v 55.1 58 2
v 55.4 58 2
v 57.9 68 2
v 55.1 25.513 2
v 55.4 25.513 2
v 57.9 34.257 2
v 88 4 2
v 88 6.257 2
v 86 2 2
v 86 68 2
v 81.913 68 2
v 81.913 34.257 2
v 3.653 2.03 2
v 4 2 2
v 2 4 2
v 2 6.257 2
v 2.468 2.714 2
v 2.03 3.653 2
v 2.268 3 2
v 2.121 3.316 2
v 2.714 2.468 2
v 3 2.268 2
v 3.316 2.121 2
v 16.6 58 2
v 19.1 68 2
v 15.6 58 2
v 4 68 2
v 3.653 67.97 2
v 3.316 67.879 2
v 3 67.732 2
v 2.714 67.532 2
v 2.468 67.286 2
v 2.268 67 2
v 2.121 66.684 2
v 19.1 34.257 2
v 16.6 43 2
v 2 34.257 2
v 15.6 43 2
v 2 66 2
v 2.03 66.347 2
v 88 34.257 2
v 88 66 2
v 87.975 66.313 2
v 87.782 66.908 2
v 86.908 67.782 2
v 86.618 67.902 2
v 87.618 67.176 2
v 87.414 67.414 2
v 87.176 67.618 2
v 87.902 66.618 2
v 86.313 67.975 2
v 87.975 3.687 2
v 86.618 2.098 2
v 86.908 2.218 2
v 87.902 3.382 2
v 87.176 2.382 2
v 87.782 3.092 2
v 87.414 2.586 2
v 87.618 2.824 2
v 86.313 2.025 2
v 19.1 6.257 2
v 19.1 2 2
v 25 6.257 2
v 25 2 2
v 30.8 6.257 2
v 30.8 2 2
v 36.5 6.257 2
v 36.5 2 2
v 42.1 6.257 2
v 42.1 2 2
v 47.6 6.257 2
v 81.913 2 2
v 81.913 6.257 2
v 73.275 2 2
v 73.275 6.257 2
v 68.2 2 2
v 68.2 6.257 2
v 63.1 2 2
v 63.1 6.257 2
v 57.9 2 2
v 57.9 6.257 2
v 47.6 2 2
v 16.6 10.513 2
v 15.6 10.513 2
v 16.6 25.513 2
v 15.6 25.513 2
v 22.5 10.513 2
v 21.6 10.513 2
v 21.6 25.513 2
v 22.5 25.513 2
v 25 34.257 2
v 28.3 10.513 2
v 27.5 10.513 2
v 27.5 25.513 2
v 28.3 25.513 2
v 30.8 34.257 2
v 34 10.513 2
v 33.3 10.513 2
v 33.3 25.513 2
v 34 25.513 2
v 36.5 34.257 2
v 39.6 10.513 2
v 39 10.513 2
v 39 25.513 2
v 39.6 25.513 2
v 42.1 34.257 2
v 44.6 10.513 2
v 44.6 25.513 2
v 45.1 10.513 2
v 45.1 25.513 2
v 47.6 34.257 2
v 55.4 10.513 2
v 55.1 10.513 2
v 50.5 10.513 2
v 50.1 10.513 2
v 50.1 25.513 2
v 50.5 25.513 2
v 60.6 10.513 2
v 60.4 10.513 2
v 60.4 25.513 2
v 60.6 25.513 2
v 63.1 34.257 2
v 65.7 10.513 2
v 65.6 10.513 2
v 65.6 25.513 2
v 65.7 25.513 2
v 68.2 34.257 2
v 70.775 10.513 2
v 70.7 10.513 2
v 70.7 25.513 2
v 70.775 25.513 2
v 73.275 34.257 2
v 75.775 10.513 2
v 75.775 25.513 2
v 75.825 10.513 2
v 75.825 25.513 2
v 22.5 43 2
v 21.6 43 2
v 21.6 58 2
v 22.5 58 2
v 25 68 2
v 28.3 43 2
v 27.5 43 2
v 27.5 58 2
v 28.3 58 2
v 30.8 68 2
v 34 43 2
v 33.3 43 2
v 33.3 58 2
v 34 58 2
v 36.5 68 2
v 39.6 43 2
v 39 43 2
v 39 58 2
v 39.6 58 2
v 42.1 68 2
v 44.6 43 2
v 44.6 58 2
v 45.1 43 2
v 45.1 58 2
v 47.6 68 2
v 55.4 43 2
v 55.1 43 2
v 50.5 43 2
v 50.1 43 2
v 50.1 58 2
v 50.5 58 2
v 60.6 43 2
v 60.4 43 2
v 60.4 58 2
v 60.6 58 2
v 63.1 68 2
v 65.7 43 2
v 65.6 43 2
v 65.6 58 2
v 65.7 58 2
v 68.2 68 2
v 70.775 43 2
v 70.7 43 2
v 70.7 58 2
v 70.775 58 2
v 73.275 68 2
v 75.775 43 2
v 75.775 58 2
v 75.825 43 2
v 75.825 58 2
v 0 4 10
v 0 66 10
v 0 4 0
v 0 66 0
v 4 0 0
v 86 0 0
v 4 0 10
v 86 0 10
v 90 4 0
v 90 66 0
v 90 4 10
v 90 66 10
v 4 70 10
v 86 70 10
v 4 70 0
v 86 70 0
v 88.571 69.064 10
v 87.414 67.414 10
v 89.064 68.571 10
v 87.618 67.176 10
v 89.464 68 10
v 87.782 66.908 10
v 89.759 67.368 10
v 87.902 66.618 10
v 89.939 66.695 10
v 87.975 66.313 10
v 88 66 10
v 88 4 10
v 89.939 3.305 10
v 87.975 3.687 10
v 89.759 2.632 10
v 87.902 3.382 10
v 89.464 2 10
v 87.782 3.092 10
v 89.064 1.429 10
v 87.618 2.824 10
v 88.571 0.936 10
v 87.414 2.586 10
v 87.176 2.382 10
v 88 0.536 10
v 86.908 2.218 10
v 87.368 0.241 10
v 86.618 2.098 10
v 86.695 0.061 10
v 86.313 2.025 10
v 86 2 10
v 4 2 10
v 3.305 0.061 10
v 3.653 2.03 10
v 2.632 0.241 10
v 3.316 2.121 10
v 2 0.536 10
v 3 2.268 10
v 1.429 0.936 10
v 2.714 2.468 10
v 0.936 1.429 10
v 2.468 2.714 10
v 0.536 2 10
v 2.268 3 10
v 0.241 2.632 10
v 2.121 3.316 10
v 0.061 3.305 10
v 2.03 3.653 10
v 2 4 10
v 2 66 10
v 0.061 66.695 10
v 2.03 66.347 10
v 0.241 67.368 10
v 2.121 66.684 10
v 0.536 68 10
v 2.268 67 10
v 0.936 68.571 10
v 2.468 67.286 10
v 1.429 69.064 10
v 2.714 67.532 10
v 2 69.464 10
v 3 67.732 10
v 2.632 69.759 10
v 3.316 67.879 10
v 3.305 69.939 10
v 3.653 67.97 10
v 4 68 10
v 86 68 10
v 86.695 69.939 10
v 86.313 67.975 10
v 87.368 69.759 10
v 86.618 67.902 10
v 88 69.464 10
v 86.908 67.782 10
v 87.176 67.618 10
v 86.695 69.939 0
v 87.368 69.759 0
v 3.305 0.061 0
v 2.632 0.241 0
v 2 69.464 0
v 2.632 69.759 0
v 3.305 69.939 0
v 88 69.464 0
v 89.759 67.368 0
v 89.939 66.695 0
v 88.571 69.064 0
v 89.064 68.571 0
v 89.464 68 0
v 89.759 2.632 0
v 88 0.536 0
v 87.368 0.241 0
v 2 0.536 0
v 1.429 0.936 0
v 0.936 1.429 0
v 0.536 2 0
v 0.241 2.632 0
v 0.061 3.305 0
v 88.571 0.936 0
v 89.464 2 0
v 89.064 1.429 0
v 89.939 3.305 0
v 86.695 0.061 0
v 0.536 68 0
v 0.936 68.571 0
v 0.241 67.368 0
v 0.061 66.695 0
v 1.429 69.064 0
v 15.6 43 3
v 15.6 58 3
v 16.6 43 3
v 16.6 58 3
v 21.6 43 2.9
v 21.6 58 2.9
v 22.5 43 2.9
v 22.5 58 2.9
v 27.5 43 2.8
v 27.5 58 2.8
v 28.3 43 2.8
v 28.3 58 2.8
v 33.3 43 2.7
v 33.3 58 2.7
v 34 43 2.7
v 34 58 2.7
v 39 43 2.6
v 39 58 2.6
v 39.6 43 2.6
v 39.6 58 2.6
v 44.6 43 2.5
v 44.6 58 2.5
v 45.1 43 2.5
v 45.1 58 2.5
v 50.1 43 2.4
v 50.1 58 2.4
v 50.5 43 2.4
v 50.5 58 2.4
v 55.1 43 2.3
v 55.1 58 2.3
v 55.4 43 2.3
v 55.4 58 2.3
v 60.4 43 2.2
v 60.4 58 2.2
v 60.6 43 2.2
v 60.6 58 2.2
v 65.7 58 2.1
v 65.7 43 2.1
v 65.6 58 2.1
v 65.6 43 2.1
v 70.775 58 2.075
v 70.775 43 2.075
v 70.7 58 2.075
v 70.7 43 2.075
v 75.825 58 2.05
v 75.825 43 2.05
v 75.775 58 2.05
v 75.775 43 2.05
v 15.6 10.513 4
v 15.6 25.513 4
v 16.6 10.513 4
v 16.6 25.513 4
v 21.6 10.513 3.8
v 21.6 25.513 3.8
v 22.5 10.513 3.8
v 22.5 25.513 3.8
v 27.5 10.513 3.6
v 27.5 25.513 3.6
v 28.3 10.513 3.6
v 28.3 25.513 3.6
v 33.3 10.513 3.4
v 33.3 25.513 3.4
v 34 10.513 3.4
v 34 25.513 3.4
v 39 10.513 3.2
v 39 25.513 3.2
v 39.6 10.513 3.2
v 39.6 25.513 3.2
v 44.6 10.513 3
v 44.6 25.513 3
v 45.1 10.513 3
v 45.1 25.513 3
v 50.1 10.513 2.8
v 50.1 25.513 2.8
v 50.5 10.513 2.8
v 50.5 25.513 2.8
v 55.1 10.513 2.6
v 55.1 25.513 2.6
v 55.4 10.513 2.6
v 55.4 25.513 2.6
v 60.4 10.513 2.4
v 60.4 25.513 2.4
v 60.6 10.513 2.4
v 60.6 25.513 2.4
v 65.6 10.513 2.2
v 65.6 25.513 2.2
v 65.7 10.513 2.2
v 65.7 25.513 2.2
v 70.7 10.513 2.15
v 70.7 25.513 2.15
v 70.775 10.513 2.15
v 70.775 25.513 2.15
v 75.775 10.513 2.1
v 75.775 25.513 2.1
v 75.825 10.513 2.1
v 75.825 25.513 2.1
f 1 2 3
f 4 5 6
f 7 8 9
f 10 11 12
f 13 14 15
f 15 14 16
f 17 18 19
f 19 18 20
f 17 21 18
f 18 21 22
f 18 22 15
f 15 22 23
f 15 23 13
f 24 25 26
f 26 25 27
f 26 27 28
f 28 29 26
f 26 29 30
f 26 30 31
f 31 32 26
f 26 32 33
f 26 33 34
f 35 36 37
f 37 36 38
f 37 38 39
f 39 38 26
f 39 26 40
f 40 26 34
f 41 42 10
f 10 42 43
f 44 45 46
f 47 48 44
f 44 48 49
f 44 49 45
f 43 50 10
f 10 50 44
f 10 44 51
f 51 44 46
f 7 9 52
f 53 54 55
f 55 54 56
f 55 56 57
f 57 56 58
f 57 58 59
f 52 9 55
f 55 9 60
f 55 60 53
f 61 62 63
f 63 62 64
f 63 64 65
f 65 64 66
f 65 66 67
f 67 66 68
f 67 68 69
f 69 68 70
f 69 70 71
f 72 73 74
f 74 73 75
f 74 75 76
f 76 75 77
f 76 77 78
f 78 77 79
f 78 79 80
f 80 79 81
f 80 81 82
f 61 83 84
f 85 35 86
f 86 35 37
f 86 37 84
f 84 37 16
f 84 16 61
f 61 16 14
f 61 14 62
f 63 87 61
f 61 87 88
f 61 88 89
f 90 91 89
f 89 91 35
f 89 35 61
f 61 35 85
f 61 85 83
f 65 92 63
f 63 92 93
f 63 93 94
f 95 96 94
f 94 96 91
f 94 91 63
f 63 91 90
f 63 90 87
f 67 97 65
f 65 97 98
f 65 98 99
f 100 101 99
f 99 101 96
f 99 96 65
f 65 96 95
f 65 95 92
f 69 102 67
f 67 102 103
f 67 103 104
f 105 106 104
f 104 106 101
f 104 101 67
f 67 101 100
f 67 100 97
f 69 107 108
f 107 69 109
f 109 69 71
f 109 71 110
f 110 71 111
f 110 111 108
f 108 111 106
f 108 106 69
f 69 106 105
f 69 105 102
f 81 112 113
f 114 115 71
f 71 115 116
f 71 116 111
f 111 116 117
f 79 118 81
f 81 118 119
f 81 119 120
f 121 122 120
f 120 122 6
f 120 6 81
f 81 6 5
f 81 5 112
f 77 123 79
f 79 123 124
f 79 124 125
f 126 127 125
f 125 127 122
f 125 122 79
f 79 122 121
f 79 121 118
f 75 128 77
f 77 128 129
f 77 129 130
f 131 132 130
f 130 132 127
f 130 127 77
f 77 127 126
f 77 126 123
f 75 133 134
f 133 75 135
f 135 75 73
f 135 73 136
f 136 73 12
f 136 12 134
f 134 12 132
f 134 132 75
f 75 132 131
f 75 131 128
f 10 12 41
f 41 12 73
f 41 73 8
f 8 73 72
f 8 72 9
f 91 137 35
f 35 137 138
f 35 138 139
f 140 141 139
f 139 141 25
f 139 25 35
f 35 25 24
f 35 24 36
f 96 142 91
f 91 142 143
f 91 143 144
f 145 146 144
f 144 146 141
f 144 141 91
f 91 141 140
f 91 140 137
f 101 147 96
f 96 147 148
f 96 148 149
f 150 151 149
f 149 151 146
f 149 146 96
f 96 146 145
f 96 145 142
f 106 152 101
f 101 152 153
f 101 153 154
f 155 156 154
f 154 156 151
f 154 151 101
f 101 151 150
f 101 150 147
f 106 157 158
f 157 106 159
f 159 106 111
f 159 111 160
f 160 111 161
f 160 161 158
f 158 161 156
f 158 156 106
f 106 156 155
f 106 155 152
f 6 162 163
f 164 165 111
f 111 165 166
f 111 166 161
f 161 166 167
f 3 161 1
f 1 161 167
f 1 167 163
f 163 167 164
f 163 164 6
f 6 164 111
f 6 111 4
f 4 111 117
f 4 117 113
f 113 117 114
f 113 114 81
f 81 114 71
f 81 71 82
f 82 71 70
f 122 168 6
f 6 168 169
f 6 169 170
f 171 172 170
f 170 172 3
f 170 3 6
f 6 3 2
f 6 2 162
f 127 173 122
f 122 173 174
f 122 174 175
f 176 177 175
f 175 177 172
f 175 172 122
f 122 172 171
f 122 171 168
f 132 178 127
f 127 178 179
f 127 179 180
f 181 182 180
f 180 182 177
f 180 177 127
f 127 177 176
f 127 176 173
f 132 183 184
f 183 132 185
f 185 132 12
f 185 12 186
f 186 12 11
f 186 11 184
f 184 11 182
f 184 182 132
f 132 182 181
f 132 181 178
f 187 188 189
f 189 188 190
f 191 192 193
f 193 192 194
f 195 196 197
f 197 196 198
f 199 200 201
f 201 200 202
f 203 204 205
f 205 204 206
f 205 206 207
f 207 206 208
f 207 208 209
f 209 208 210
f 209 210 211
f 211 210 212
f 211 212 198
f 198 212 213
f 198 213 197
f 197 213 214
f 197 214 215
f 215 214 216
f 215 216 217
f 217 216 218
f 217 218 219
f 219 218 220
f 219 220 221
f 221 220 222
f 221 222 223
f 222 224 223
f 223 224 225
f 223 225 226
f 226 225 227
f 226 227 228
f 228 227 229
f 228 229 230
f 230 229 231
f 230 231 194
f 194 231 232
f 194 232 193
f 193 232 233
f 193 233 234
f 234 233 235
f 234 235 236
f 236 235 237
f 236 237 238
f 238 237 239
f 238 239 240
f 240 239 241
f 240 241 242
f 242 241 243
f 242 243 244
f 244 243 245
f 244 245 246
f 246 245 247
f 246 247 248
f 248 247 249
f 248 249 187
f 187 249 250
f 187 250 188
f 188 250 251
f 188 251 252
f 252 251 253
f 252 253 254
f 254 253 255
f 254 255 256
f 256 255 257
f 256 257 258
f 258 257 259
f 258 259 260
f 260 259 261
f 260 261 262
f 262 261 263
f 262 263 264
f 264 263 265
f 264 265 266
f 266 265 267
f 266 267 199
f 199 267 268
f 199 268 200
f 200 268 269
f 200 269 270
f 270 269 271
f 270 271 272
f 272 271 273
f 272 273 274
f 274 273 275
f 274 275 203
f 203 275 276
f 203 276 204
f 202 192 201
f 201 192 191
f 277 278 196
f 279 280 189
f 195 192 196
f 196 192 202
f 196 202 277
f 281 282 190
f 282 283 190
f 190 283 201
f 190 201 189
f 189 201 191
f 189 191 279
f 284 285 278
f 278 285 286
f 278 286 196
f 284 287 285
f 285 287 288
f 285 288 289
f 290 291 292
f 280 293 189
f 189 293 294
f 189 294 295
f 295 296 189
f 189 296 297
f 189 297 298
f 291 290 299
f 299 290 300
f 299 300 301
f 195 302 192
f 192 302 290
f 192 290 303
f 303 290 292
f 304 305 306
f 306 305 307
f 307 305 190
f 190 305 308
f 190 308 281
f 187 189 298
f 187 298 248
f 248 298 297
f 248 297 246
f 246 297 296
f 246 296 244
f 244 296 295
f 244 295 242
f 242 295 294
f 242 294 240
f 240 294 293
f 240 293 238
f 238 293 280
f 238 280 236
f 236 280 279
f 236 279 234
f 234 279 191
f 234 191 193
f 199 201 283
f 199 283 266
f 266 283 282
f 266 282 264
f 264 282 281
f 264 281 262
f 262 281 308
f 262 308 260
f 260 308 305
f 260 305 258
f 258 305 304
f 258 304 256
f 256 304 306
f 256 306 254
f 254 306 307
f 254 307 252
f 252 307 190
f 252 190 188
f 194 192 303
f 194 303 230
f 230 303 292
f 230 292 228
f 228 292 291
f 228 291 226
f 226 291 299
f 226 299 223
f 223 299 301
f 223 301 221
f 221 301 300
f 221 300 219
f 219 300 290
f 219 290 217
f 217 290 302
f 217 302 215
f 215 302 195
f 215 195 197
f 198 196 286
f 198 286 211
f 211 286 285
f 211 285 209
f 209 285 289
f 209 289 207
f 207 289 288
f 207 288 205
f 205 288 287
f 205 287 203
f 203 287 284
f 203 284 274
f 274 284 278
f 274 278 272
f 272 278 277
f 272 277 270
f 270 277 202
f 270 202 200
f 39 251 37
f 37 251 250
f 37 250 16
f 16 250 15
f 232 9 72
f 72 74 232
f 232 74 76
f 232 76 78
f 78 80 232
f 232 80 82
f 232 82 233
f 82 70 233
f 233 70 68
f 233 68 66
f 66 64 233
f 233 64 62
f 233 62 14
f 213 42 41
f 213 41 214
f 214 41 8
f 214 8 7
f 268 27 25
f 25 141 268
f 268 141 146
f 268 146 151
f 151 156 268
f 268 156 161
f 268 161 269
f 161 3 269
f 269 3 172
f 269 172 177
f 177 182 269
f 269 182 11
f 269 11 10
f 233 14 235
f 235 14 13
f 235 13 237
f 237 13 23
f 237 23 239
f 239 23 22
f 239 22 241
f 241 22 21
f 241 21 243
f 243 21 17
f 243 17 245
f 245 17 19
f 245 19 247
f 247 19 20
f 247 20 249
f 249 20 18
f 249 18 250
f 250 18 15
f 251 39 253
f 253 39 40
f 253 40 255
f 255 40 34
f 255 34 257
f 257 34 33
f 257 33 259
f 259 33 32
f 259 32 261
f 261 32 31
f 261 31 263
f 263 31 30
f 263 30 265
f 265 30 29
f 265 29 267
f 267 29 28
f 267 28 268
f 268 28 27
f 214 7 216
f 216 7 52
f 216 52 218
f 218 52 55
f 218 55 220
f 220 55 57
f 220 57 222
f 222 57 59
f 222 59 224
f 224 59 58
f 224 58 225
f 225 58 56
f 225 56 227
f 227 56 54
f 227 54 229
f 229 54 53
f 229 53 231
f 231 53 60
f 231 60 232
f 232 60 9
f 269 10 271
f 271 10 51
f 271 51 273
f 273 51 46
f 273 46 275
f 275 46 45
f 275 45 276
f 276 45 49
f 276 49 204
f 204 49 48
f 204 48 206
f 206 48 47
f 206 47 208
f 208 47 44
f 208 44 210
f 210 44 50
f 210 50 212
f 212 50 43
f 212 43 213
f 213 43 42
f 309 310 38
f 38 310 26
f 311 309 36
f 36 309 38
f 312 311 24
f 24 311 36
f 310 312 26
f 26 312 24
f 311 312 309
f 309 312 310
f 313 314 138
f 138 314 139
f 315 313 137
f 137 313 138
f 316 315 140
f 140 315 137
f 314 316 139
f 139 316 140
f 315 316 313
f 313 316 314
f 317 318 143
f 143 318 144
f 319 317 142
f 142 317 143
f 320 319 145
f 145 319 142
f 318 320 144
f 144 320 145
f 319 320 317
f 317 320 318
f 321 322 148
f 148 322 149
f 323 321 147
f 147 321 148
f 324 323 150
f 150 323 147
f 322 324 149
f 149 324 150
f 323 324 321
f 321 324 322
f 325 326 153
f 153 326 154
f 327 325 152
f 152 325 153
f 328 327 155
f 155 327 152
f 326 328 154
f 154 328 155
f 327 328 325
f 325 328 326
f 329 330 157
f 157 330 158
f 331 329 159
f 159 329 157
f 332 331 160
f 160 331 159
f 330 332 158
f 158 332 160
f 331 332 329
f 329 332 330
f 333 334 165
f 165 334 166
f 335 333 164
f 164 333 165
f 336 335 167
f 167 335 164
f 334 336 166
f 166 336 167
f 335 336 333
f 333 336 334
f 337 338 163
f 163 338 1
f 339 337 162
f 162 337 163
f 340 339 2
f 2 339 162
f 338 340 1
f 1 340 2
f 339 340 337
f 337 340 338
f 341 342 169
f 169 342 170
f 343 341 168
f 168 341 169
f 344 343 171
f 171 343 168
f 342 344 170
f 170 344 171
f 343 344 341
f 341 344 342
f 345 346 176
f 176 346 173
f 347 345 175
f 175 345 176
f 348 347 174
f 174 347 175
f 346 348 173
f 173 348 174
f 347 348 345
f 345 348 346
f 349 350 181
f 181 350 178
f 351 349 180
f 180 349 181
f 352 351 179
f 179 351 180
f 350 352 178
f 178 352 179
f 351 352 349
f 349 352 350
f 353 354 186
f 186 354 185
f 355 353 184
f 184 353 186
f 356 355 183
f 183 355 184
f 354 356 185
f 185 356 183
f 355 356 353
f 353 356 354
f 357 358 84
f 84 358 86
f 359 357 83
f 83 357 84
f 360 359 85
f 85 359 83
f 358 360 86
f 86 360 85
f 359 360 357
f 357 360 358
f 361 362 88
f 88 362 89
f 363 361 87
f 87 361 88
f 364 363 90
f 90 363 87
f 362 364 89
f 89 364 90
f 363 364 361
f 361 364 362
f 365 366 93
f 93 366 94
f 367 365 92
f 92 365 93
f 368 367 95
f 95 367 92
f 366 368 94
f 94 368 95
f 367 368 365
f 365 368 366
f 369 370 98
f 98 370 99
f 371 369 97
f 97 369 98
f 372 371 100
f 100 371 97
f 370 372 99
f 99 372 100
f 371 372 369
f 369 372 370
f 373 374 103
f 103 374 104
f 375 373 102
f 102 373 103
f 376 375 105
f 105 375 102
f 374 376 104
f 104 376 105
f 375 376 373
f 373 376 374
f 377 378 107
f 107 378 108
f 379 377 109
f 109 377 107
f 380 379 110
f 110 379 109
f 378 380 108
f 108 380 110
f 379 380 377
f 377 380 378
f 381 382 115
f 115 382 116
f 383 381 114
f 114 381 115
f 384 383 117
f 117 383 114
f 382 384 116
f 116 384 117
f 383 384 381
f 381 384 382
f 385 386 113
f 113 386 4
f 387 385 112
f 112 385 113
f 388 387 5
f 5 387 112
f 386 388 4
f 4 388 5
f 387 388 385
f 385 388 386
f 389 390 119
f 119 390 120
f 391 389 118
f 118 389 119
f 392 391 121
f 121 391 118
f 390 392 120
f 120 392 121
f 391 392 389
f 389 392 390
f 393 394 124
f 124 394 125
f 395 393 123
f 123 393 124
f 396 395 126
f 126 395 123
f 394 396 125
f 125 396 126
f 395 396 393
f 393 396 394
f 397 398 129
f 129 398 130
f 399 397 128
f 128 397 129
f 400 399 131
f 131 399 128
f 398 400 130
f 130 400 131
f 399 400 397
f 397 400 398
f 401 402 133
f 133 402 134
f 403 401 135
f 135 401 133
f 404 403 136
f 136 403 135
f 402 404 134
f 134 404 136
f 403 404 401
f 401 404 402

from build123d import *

# Parameters (mm, degrees)
SKETCH1_W            = 90
SKETCH1_H            = 70
BOSS_EXTRUDE1_DEPTH  = 10
FILLET1_R            = 4
SHELL1_T             = -2
SKETCH2_W            = 1
SKETCH2_H            = 15
BOSS_EXTRUDE2_DEPTH  = 1
SKETCH3_W            = 0.9
SKETCH3_H            = 15
BOSS_EXTRUDE3_DEPTH  = 0.9
SKETCH4_W            = 0.8
SKETCH4_H            = 15
BOSS_EXTRUDE4_DEPTH  = 0.8
SKETCH5_W            = 0.7
SKETCH5_H            = 15
BOSS_EXTRUDE5_DEPTH  = 0.7
SKETCH6_W            = 0.6
SKETCH6_H            = 15
BOSS_EXTRUDE6_DEPTH  = 0.6
SKETCH7_W            = 0.5
SKETCH7_H            = 15
BOSS_EXTRUDE7_DEPTH  = 0.5
SKETCH8_W            = 0.4
SKETCH8_H            = 15
BOSS_EXTRUDE8_DEPTH  = 0.4
SKETCH9_W            = 0.3
SKETCH9_H            = 15
BOSS_EXTRUDE9_DEPTH  = 0.3
SKETCH10_W           = 0.2
SKETCH10_H           = 15
BOSS_EXTRUDE10_DEPTH = 0.2
SKETCH11_W           = 0.1
SKETCH11_H           = 15
BOSS_EXTRUDE11_DEPTH = 0.1
SKETCH12_W           = 0.075
SKETCH12_H           = 15
BOSS_EXTRUDE12_DEPTH = 0.075
SKETCH14_W           = 0.05
SKETCH14_H           = 15
BOSS_EXTRUDE13_DEPTH = 0.05
SKETCH15_W           = 1
SKETCH15_H           = 15
BOSS_EXTRUDE14_DEPTH = 2
SKETCH17_W           = 0.9
SKETCH17_H           = 15
BOSS_EXTRUDE15_DEPTH = 1.8
SKETCH18_W           = 0.8
SKETCH18_H           = 15
BOSS_EXTRUDE16_DEPTH = 1.6
SKETCH19_W           = 0.7
SKETCH19_H           = 15
BOSS_EXTRUDE17_DEPTH = 1.4
SKETCH20_W           = 0.6
SKETCH20_H           = 15
BOSS_EXTRUDE18_DEPTH = 1.2
SKETCH21_W           = 0.5
SKETCH21_H           = 15
BOSS_EXTRUDE19_DEPTH = 1
SKETCH22_W           = 0.4
SKETCH22_H           = 15
BOSS_EXTRUDE20_DEPTH = 0.8
SKETCH23_W           = 0.3
SKETCH23_H           = 15
BOSS_EXTRUDE21_DEPTH = 0.6
SKETCH24_W           = 0.2
SKETCH24_H           = 15
BOSS_EXTRUDE22_DEPTH = 0.4
SKETCH25_W           = 0.1
SKETCH25_H           = 15
BOSS_EXTRUDE23_DEPTH = 0.2
SKETCH27_W           = 0.075
SKETCH27_H           = 15
BOSS_EXTRUDE24_DEPTH = 0.15
SKETCH28_W           = 0.05
SKETCH28_H           = 15
BOSS_EXTRUDE25_DEPTH = 0.1


with BuildPart() as part:
    # Sketch1 → Boss-Extrude1 (new body)
    with BuildSketch(Plane.XY):
        with Locations((45, 35)):
            Rectangle(SKETCH1_W, SKETCH1_H)
    extrude(amount=BOSS_EXTRUDE1_DEPTH)

    # Fillet1
    fillet1_edges = [part.edges().sort_by_distance(p)[0] for p in [
        (0, 70, 5),
        (90, 70, 5),
        (90, 0, 5),
        (0, 0, 5),
    ]]
    fillet(fillet1_edges, radius=FILLET1_R)

    # Shell1
    shell1_openings = [part.faces().sort_by_distance(p)[0] for p in [
        (45, 35, 10),
    ]]
    offset(amount=SHELL1_T, openings=shell1_openings, kind=Kind.INTERSECTION)

    # Sketch2 → Boss-Extrude2 (add)
    with BuildSketch(Plane.XY.offset(2)):
        with Locations((16.1, 50.5)):
            Rectangle(SKETCH2_W, SKETCH2_H)
    extrude(amount=BOSS_EXTRUDE2_DEPTH)

    # Sketch3 → Boss-Extrude3 (add)
    with BuildSketch(Plane.XY.offset(2)):
        with Locations((22.05, 50.5)):
            Rectangle(SKETCH3_W, SKETCH3_H)
    extrude(amount=BOSS_EXTRUDE3_DEPTH)

    # Sketch4 → Boss-Extrude4 (add)
    with BuildSketch(Plane.XY.offset(2)):
        with Locations((27.9, 50.5)):
            Rectangle(SKETCH4_W, SKETCH4_H)
    extrude(amount=BOSS_EXTRUDE4_DEPTH)

    # Sketch5 → Boss-Extrude5 (add)
    with BuildSketch(Plane.XY.offset(2)):
        with Locations((33.65, 50.5)):
            Rectangle(SKETCH5_W, SKETCH5_H)
    extrude(amount=BOSS_EXTRUDE5_DEPTH)

    # Sketch6 → Boss-Extrude6 (add)
    with BuildSketch(Plane.XY.offset(2)):
        with Locations((39.3, 50.5)):
            Rectangle(SKETCH6_W, SKETCH6_H)
    extrude(amount=BOSS_EXTRUDE6_DEPTH)

    # Sketch7 → Boss-Extrude7 (add)
    with BuildSketch(Plane.XY.offset(2)):
        with Locations((44.85, 50.5)):
            Rectangle(SKETCH7_W, SKETCH7_H)
    extrude(amount=BOSS_EXTRUDE7_DEPTH)

    # Sketch8 → Boss-Extrude8 (add)
    with BuildSketch(Plane.XY.offset(2)):
        with Locations((50.3, 50.5)):
            Rectangle(SKETCH8_W, SKETCH8_H)
    extrude(amount=BOSS_EXTRUDE8_DEPTH)

    # Sketch9 → Boss-Extrude9 (add)
    with BuildSketch(Plane.XY.offset(2)):
        with Locations((55.25, 50.5)):
            Rectangle(SKETCH9_W, SKETCH9_H)
    extrude(amount=BOSS_EXTRUDE9_DEPTH)

    # Sketch10 → Boss-Extrude10 (add)
    with BuildSketch(Plane.XY.offset(2)):
        with Locations((60.5, 50.5)):
            Rectangle(SKETCH10_W, SKETCH10_H)
    extrude(amount=BOSS_EXTRUDE10_DEPTH)

    # Sketch11 → Boss-Extrude11 (add)
    with BuildSketch(Plane.XY.offset(2)):
        with Locations((65.65, 50.5)):
            Rectangle(SKETCH11_W, SKETCH11_H)
    extrude(amount=BOSS_EXTRUDE11_DEPTH)

    # Sketch12 → Boss-Extrude12 (add)
    with BuildSketch(Plane.XY.offset(2)):
        with Locations((70.7375, 50.5)):
            Rectangle(SKETCH12_W, SKETCH12_H)
    extrude(amount=BOSS_EXTRUDE12_DEPTH)

    # Sketch14 → Boss-Extrude13 (add)
    with BuildSketch(Plane.XY.offset(2)):
        with Locations((75.8, 50.5)):
            Rectangle(SKETCH14_W, SKETCH14_H)
    extrude(amount=BOSS_EXTRUDE13_DEPTH)

    # Sketch15 → Boss-Extrude14 (add)
    with BuildSketch(Plane.XY.offset(2)):
        with Locations((16.1, 18.013180638)):
            Rectangle(SKETCH15_W, SKETCH15_H)
    extrude(amount=BOSS_EXTRUDE14_DEPTH)

    # Sketch17 → Boss-Extrude15 (add)
    with BuildSketch(Plane.XY.offset(2)):
        with Locations((22.05, 18.013180638)):
            Rectangle(SKETCH17_W, SKETCH17_H)
    extrude(amount=BOSS_EXTRUDE15_DEPTH)

    # Sketch18 → Boss-Extrude16 (add)
    with BuildSketch(Plane.XY.offset(2)):
        with Locations((27.9, 18.013180638)):
            Rectangle(SKETCH18_W, SKETCH18_H)
    extrude(amount=BOSS_EXTRUDE16_DEPTH)

    # Sketch19 → Boss-Extrude17 (add)
    with BuildSketch(Plane.XY.offset(2)):
        with Locations((33.65, 18.013180638)):
            Rectangle(SKETCH19_W, SKETCH19_H)
    extrude(amount=BOSS_EXTRUDE17_DEPTH)

    # Sketch20 → Boss-Extrude18 (add)
    with BuildSketch(Plane.XY.offset(2)):
        with Locations((39.3, 18.013180638)):
            Rectangle(SKETCH20_W, SKETCH20_H)
    extrude(amount=BOSS_EXTRUDE18_DEPTH)

    # Sketch21 → Boss-Extrude19 (add)
    with BuildSketch(Plane.XY.offset(2)):
        with Locations((44.85, 18.013180638)):
            Rectangle(SKETCH21_W, SKETCH21_H)
    extrude(amount=BOSS_EXTRUDE19_DEPTH)

    # Sketch22 → Boss-Extrude20 (add)
    with BuildSketch(Plane.XY.offset(2)):
        with Locations((50.3, 18.013180638)):
            Rectangle(SKETCH22_W, SKETCH22_H)
    extrude(amount=BOSS_EXTRUDE20_DEPTH)

    # Sketch23 → Boss-Extrude21 (add)
    with BuildSketch(Plane.XY.offset(2)):
        with Locations((55.25, 18.013180638)):
            Rectangle(SKETCH23_W, SKETCH23_H)
    extrude(amount=BOSS_EXTRUDE21_DEPTH)

    # Sketch24 → Boss-Extrude22 (add)
    with BuildSketch(Plane.XY.offset(2)):
        with Locations((60.5, 18.013180638)):
            Rectangle(SKETCH24_W, SKETCH24_H)
    extrude(amount=BOSS_EXTRUDE22_DEPTH)

    # Sketch25 → Boss-Extrude23 (add)
    with BuildSketch(Plane.XY.offset(2)):
        with Locations((65.65, 18.013180638)):
            Rectangle(SKETCH25_W, SKETCH25_H)
    extrude(amount=BOSS_EXTRUDE23_DEPTH)

    # Sketch27 → Boss-Extrude24 (add)
    with BuildSketch(Plane.XY.offset(2)):
        with Locations((70.7375, 18.013180638)):
            Rectangle(SKETCH27_W, SKETCH27_H)
    extrude(amount=BOSS_EXTRUDE24_DEPTH)

    # Sketch28 → Boss-Extrude25 (add)
    with BuildSketch(Plane.XY.offset(2)):
        with Locations((75.8, 18.013180638)):
            Rectangle(SKETCH28_W, SKETCH28_H)
    extrude(amount=BOSS_EXTRUDE25_DEPTH)


solid = part.part
